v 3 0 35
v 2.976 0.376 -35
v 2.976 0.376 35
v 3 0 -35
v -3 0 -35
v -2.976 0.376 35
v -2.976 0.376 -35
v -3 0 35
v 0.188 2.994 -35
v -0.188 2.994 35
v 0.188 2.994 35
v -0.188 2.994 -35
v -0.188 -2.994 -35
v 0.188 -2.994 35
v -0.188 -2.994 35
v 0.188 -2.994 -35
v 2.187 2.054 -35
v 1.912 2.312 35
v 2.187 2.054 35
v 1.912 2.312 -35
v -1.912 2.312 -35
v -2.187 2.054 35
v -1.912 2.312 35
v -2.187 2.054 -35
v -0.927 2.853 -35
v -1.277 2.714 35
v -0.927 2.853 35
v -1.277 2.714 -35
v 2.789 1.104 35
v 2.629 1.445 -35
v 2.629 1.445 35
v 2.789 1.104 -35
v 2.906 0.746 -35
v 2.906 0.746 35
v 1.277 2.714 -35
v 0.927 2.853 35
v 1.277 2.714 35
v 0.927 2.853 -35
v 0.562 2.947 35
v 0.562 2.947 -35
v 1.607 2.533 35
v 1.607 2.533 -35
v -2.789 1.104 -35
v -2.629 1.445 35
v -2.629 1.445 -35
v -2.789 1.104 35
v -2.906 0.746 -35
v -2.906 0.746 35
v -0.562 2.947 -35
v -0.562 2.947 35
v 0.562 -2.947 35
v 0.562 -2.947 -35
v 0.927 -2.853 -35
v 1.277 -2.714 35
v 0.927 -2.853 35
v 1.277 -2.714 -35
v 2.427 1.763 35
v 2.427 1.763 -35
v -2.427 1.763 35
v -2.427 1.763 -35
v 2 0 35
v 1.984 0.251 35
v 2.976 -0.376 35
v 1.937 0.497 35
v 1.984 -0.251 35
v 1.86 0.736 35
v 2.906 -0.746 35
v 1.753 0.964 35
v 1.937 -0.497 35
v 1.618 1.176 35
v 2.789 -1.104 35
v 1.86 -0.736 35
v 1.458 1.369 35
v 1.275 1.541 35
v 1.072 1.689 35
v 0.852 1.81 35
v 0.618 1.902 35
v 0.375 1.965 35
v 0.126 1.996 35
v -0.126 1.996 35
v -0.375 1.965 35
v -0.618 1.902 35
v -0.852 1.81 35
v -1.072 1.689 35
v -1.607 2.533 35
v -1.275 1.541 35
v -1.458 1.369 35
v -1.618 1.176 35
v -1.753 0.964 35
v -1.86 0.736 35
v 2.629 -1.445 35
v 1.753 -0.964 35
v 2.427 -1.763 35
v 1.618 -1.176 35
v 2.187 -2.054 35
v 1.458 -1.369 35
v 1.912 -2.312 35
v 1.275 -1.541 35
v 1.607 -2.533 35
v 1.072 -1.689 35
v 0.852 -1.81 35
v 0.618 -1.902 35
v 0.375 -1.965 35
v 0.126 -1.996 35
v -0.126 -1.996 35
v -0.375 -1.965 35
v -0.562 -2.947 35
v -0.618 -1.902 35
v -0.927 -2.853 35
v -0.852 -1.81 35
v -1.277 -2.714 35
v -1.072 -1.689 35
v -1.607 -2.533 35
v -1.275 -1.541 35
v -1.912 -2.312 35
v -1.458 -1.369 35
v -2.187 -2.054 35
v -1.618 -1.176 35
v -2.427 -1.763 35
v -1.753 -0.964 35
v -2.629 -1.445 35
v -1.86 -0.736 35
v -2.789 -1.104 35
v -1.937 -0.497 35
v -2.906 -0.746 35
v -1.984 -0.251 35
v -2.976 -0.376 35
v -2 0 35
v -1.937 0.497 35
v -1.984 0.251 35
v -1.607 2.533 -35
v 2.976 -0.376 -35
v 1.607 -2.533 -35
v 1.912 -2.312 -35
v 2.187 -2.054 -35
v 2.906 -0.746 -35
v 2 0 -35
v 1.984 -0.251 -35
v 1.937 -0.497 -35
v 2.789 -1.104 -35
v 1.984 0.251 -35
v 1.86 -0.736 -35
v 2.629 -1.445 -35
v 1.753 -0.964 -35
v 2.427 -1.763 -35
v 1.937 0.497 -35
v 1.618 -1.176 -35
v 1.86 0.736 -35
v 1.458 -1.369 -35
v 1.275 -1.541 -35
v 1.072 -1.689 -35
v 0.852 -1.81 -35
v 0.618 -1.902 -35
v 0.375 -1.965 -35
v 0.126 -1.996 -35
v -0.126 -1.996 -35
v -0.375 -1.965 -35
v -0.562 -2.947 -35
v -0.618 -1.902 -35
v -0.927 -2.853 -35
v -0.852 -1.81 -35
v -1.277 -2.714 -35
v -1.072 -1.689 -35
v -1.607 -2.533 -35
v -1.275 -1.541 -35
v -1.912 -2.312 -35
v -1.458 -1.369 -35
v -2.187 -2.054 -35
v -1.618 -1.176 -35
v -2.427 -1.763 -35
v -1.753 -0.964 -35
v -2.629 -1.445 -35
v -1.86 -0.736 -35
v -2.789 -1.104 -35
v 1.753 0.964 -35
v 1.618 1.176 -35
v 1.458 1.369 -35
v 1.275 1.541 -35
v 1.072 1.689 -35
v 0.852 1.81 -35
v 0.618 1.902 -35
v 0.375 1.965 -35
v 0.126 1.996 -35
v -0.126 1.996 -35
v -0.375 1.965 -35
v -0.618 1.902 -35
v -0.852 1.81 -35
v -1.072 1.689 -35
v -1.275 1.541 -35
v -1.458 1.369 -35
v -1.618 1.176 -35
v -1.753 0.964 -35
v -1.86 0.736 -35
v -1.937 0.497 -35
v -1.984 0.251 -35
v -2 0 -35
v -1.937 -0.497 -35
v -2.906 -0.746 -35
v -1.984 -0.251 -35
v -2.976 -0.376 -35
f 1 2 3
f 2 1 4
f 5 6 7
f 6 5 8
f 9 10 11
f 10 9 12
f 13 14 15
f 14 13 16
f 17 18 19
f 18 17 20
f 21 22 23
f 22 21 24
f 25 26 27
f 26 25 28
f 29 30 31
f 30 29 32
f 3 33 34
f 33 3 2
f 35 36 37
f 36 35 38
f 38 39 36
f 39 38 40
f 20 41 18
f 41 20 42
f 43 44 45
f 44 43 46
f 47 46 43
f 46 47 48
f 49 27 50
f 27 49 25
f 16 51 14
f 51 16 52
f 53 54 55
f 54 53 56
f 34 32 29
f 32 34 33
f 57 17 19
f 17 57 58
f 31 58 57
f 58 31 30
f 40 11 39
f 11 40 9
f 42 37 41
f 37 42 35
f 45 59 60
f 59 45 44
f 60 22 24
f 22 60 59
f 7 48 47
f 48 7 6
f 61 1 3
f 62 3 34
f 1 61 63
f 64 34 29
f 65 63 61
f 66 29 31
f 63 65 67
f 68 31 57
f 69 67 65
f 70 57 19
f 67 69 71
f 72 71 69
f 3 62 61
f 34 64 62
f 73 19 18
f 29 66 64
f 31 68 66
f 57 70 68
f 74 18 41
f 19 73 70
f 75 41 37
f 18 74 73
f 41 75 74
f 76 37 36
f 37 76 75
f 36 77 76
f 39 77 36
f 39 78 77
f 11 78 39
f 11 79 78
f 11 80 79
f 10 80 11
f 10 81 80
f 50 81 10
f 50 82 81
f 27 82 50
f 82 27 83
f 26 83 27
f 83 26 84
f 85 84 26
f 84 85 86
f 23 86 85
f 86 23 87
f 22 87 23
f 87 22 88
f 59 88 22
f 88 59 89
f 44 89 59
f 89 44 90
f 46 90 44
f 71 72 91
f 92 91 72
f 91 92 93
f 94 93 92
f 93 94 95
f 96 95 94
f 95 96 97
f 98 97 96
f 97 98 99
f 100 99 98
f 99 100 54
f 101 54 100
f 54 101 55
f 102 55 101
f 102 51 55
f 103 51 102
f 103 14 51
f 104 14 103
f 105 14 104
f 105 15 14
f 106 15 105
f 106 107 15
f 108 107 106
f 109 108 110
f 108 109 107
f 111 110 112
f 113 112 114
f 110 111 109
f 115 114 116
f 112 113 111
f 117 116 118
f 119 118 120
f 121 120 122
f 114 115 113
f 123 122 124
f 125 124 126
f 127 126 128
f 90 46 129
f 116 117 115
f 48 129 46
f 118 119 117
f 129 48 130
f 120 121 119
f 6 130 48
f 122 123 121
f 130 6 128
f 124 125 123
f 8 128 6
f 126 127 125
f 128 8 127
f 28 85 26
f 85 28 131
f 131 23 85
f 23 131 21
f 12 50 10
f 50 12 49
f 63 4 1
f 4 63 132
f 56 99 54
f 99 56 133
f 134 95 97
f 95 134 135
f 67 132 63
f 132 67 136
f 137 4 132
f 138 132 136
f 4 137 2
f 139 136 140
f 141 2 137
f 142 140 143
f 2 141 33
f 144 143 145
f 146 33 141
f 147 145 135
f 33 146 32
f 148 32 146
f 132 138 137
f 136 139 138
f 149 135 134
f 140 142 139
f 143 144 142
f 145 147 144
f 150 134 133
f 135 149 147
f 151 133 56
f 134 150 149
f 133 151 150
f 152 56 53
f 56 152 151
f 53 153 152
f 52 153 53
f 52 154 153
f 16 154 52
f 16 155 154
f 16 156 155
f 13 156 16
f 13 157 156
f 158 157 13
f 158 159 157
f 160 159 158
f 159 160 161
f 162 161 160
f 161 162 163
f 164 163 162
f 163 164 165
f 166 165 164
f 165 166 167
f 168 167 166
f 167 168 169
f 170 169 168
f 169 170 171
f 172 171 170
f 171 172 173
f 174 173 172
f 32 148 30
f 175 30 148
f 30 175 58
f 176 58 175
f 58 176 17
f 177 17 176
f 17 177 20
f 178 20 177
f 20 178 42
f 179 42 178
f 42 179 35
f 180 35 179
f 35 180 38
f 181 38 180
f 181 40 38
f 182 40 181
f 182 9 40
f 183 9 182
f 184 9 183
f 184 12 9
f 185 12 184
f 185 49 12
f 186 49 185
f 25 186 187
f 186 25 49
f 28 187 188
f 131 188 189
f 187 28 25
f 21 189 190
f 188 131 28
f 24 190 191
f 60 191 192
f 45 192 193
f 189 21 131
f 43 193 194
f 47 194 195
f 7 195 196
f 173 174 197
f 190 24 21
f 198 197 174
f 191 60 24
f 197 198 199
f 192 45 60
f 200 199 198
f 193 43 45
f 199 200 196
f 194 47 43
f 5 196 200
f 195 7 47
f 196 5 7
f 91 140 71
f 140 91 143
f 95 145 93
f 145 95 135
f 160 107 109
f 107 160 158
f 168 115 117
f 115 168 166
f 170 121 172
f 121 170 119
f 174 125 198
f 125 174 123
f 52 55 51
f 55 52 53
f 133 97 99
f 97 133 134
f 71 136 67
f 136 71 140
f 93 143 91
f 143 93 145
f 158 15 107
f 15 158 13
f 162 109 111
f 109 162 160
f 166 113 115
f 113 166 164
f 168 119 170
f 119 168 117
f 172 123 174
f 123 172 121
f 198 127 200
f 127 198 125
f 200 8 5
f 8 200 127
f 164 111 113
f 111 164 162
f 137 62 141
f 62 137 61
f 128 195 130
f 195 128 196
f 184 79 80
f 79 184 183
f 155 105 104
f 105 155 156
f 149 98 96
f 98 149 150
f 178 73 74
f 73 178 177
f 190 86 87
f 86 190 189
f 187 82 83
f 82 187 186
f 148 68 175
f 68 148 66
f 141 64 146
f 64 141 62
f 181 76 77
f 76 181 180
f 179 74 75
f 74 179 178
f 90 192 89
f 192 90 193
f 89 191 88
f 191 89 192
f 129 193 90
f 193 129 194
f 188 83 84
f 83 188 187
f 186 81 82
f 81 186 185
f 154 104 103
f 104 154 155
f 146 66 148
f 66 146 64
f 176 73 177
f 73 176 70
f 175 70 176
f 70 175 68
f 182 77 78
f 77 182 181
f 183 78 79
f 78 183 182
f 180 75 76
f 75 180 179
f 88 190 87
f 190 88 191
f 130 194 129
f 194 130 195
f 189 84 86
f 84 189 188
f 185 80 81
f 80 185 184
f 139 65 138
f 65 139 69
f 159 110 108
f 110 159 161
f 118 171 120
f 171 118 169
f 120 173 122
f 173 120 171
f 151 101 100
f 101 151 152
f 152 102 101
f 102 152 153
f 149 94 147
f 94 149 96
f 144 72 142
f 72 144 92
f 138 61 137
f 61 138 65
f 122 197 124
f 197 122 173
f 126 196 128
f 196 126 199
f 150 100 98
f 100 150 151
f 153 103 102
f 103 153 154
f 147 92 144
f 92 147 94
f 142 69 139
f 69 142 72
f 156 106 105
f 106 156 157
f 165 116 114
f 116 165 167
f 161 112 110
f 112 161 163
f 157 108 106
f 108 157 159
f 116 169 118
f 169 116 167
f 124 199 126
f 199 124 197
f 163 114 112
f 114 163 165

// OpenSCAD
$fn = 50;


difference() {
	union() {
		translate(v = [0, 0, -35.0000000000]) {
			cylinder(h = 70, r = 3.0000000000);
		}
	}
	union() {
		translate(v = [0, 0, -100.0000000000]) {
			cylinder(h = 200, r = 2);
		}
	}
}
